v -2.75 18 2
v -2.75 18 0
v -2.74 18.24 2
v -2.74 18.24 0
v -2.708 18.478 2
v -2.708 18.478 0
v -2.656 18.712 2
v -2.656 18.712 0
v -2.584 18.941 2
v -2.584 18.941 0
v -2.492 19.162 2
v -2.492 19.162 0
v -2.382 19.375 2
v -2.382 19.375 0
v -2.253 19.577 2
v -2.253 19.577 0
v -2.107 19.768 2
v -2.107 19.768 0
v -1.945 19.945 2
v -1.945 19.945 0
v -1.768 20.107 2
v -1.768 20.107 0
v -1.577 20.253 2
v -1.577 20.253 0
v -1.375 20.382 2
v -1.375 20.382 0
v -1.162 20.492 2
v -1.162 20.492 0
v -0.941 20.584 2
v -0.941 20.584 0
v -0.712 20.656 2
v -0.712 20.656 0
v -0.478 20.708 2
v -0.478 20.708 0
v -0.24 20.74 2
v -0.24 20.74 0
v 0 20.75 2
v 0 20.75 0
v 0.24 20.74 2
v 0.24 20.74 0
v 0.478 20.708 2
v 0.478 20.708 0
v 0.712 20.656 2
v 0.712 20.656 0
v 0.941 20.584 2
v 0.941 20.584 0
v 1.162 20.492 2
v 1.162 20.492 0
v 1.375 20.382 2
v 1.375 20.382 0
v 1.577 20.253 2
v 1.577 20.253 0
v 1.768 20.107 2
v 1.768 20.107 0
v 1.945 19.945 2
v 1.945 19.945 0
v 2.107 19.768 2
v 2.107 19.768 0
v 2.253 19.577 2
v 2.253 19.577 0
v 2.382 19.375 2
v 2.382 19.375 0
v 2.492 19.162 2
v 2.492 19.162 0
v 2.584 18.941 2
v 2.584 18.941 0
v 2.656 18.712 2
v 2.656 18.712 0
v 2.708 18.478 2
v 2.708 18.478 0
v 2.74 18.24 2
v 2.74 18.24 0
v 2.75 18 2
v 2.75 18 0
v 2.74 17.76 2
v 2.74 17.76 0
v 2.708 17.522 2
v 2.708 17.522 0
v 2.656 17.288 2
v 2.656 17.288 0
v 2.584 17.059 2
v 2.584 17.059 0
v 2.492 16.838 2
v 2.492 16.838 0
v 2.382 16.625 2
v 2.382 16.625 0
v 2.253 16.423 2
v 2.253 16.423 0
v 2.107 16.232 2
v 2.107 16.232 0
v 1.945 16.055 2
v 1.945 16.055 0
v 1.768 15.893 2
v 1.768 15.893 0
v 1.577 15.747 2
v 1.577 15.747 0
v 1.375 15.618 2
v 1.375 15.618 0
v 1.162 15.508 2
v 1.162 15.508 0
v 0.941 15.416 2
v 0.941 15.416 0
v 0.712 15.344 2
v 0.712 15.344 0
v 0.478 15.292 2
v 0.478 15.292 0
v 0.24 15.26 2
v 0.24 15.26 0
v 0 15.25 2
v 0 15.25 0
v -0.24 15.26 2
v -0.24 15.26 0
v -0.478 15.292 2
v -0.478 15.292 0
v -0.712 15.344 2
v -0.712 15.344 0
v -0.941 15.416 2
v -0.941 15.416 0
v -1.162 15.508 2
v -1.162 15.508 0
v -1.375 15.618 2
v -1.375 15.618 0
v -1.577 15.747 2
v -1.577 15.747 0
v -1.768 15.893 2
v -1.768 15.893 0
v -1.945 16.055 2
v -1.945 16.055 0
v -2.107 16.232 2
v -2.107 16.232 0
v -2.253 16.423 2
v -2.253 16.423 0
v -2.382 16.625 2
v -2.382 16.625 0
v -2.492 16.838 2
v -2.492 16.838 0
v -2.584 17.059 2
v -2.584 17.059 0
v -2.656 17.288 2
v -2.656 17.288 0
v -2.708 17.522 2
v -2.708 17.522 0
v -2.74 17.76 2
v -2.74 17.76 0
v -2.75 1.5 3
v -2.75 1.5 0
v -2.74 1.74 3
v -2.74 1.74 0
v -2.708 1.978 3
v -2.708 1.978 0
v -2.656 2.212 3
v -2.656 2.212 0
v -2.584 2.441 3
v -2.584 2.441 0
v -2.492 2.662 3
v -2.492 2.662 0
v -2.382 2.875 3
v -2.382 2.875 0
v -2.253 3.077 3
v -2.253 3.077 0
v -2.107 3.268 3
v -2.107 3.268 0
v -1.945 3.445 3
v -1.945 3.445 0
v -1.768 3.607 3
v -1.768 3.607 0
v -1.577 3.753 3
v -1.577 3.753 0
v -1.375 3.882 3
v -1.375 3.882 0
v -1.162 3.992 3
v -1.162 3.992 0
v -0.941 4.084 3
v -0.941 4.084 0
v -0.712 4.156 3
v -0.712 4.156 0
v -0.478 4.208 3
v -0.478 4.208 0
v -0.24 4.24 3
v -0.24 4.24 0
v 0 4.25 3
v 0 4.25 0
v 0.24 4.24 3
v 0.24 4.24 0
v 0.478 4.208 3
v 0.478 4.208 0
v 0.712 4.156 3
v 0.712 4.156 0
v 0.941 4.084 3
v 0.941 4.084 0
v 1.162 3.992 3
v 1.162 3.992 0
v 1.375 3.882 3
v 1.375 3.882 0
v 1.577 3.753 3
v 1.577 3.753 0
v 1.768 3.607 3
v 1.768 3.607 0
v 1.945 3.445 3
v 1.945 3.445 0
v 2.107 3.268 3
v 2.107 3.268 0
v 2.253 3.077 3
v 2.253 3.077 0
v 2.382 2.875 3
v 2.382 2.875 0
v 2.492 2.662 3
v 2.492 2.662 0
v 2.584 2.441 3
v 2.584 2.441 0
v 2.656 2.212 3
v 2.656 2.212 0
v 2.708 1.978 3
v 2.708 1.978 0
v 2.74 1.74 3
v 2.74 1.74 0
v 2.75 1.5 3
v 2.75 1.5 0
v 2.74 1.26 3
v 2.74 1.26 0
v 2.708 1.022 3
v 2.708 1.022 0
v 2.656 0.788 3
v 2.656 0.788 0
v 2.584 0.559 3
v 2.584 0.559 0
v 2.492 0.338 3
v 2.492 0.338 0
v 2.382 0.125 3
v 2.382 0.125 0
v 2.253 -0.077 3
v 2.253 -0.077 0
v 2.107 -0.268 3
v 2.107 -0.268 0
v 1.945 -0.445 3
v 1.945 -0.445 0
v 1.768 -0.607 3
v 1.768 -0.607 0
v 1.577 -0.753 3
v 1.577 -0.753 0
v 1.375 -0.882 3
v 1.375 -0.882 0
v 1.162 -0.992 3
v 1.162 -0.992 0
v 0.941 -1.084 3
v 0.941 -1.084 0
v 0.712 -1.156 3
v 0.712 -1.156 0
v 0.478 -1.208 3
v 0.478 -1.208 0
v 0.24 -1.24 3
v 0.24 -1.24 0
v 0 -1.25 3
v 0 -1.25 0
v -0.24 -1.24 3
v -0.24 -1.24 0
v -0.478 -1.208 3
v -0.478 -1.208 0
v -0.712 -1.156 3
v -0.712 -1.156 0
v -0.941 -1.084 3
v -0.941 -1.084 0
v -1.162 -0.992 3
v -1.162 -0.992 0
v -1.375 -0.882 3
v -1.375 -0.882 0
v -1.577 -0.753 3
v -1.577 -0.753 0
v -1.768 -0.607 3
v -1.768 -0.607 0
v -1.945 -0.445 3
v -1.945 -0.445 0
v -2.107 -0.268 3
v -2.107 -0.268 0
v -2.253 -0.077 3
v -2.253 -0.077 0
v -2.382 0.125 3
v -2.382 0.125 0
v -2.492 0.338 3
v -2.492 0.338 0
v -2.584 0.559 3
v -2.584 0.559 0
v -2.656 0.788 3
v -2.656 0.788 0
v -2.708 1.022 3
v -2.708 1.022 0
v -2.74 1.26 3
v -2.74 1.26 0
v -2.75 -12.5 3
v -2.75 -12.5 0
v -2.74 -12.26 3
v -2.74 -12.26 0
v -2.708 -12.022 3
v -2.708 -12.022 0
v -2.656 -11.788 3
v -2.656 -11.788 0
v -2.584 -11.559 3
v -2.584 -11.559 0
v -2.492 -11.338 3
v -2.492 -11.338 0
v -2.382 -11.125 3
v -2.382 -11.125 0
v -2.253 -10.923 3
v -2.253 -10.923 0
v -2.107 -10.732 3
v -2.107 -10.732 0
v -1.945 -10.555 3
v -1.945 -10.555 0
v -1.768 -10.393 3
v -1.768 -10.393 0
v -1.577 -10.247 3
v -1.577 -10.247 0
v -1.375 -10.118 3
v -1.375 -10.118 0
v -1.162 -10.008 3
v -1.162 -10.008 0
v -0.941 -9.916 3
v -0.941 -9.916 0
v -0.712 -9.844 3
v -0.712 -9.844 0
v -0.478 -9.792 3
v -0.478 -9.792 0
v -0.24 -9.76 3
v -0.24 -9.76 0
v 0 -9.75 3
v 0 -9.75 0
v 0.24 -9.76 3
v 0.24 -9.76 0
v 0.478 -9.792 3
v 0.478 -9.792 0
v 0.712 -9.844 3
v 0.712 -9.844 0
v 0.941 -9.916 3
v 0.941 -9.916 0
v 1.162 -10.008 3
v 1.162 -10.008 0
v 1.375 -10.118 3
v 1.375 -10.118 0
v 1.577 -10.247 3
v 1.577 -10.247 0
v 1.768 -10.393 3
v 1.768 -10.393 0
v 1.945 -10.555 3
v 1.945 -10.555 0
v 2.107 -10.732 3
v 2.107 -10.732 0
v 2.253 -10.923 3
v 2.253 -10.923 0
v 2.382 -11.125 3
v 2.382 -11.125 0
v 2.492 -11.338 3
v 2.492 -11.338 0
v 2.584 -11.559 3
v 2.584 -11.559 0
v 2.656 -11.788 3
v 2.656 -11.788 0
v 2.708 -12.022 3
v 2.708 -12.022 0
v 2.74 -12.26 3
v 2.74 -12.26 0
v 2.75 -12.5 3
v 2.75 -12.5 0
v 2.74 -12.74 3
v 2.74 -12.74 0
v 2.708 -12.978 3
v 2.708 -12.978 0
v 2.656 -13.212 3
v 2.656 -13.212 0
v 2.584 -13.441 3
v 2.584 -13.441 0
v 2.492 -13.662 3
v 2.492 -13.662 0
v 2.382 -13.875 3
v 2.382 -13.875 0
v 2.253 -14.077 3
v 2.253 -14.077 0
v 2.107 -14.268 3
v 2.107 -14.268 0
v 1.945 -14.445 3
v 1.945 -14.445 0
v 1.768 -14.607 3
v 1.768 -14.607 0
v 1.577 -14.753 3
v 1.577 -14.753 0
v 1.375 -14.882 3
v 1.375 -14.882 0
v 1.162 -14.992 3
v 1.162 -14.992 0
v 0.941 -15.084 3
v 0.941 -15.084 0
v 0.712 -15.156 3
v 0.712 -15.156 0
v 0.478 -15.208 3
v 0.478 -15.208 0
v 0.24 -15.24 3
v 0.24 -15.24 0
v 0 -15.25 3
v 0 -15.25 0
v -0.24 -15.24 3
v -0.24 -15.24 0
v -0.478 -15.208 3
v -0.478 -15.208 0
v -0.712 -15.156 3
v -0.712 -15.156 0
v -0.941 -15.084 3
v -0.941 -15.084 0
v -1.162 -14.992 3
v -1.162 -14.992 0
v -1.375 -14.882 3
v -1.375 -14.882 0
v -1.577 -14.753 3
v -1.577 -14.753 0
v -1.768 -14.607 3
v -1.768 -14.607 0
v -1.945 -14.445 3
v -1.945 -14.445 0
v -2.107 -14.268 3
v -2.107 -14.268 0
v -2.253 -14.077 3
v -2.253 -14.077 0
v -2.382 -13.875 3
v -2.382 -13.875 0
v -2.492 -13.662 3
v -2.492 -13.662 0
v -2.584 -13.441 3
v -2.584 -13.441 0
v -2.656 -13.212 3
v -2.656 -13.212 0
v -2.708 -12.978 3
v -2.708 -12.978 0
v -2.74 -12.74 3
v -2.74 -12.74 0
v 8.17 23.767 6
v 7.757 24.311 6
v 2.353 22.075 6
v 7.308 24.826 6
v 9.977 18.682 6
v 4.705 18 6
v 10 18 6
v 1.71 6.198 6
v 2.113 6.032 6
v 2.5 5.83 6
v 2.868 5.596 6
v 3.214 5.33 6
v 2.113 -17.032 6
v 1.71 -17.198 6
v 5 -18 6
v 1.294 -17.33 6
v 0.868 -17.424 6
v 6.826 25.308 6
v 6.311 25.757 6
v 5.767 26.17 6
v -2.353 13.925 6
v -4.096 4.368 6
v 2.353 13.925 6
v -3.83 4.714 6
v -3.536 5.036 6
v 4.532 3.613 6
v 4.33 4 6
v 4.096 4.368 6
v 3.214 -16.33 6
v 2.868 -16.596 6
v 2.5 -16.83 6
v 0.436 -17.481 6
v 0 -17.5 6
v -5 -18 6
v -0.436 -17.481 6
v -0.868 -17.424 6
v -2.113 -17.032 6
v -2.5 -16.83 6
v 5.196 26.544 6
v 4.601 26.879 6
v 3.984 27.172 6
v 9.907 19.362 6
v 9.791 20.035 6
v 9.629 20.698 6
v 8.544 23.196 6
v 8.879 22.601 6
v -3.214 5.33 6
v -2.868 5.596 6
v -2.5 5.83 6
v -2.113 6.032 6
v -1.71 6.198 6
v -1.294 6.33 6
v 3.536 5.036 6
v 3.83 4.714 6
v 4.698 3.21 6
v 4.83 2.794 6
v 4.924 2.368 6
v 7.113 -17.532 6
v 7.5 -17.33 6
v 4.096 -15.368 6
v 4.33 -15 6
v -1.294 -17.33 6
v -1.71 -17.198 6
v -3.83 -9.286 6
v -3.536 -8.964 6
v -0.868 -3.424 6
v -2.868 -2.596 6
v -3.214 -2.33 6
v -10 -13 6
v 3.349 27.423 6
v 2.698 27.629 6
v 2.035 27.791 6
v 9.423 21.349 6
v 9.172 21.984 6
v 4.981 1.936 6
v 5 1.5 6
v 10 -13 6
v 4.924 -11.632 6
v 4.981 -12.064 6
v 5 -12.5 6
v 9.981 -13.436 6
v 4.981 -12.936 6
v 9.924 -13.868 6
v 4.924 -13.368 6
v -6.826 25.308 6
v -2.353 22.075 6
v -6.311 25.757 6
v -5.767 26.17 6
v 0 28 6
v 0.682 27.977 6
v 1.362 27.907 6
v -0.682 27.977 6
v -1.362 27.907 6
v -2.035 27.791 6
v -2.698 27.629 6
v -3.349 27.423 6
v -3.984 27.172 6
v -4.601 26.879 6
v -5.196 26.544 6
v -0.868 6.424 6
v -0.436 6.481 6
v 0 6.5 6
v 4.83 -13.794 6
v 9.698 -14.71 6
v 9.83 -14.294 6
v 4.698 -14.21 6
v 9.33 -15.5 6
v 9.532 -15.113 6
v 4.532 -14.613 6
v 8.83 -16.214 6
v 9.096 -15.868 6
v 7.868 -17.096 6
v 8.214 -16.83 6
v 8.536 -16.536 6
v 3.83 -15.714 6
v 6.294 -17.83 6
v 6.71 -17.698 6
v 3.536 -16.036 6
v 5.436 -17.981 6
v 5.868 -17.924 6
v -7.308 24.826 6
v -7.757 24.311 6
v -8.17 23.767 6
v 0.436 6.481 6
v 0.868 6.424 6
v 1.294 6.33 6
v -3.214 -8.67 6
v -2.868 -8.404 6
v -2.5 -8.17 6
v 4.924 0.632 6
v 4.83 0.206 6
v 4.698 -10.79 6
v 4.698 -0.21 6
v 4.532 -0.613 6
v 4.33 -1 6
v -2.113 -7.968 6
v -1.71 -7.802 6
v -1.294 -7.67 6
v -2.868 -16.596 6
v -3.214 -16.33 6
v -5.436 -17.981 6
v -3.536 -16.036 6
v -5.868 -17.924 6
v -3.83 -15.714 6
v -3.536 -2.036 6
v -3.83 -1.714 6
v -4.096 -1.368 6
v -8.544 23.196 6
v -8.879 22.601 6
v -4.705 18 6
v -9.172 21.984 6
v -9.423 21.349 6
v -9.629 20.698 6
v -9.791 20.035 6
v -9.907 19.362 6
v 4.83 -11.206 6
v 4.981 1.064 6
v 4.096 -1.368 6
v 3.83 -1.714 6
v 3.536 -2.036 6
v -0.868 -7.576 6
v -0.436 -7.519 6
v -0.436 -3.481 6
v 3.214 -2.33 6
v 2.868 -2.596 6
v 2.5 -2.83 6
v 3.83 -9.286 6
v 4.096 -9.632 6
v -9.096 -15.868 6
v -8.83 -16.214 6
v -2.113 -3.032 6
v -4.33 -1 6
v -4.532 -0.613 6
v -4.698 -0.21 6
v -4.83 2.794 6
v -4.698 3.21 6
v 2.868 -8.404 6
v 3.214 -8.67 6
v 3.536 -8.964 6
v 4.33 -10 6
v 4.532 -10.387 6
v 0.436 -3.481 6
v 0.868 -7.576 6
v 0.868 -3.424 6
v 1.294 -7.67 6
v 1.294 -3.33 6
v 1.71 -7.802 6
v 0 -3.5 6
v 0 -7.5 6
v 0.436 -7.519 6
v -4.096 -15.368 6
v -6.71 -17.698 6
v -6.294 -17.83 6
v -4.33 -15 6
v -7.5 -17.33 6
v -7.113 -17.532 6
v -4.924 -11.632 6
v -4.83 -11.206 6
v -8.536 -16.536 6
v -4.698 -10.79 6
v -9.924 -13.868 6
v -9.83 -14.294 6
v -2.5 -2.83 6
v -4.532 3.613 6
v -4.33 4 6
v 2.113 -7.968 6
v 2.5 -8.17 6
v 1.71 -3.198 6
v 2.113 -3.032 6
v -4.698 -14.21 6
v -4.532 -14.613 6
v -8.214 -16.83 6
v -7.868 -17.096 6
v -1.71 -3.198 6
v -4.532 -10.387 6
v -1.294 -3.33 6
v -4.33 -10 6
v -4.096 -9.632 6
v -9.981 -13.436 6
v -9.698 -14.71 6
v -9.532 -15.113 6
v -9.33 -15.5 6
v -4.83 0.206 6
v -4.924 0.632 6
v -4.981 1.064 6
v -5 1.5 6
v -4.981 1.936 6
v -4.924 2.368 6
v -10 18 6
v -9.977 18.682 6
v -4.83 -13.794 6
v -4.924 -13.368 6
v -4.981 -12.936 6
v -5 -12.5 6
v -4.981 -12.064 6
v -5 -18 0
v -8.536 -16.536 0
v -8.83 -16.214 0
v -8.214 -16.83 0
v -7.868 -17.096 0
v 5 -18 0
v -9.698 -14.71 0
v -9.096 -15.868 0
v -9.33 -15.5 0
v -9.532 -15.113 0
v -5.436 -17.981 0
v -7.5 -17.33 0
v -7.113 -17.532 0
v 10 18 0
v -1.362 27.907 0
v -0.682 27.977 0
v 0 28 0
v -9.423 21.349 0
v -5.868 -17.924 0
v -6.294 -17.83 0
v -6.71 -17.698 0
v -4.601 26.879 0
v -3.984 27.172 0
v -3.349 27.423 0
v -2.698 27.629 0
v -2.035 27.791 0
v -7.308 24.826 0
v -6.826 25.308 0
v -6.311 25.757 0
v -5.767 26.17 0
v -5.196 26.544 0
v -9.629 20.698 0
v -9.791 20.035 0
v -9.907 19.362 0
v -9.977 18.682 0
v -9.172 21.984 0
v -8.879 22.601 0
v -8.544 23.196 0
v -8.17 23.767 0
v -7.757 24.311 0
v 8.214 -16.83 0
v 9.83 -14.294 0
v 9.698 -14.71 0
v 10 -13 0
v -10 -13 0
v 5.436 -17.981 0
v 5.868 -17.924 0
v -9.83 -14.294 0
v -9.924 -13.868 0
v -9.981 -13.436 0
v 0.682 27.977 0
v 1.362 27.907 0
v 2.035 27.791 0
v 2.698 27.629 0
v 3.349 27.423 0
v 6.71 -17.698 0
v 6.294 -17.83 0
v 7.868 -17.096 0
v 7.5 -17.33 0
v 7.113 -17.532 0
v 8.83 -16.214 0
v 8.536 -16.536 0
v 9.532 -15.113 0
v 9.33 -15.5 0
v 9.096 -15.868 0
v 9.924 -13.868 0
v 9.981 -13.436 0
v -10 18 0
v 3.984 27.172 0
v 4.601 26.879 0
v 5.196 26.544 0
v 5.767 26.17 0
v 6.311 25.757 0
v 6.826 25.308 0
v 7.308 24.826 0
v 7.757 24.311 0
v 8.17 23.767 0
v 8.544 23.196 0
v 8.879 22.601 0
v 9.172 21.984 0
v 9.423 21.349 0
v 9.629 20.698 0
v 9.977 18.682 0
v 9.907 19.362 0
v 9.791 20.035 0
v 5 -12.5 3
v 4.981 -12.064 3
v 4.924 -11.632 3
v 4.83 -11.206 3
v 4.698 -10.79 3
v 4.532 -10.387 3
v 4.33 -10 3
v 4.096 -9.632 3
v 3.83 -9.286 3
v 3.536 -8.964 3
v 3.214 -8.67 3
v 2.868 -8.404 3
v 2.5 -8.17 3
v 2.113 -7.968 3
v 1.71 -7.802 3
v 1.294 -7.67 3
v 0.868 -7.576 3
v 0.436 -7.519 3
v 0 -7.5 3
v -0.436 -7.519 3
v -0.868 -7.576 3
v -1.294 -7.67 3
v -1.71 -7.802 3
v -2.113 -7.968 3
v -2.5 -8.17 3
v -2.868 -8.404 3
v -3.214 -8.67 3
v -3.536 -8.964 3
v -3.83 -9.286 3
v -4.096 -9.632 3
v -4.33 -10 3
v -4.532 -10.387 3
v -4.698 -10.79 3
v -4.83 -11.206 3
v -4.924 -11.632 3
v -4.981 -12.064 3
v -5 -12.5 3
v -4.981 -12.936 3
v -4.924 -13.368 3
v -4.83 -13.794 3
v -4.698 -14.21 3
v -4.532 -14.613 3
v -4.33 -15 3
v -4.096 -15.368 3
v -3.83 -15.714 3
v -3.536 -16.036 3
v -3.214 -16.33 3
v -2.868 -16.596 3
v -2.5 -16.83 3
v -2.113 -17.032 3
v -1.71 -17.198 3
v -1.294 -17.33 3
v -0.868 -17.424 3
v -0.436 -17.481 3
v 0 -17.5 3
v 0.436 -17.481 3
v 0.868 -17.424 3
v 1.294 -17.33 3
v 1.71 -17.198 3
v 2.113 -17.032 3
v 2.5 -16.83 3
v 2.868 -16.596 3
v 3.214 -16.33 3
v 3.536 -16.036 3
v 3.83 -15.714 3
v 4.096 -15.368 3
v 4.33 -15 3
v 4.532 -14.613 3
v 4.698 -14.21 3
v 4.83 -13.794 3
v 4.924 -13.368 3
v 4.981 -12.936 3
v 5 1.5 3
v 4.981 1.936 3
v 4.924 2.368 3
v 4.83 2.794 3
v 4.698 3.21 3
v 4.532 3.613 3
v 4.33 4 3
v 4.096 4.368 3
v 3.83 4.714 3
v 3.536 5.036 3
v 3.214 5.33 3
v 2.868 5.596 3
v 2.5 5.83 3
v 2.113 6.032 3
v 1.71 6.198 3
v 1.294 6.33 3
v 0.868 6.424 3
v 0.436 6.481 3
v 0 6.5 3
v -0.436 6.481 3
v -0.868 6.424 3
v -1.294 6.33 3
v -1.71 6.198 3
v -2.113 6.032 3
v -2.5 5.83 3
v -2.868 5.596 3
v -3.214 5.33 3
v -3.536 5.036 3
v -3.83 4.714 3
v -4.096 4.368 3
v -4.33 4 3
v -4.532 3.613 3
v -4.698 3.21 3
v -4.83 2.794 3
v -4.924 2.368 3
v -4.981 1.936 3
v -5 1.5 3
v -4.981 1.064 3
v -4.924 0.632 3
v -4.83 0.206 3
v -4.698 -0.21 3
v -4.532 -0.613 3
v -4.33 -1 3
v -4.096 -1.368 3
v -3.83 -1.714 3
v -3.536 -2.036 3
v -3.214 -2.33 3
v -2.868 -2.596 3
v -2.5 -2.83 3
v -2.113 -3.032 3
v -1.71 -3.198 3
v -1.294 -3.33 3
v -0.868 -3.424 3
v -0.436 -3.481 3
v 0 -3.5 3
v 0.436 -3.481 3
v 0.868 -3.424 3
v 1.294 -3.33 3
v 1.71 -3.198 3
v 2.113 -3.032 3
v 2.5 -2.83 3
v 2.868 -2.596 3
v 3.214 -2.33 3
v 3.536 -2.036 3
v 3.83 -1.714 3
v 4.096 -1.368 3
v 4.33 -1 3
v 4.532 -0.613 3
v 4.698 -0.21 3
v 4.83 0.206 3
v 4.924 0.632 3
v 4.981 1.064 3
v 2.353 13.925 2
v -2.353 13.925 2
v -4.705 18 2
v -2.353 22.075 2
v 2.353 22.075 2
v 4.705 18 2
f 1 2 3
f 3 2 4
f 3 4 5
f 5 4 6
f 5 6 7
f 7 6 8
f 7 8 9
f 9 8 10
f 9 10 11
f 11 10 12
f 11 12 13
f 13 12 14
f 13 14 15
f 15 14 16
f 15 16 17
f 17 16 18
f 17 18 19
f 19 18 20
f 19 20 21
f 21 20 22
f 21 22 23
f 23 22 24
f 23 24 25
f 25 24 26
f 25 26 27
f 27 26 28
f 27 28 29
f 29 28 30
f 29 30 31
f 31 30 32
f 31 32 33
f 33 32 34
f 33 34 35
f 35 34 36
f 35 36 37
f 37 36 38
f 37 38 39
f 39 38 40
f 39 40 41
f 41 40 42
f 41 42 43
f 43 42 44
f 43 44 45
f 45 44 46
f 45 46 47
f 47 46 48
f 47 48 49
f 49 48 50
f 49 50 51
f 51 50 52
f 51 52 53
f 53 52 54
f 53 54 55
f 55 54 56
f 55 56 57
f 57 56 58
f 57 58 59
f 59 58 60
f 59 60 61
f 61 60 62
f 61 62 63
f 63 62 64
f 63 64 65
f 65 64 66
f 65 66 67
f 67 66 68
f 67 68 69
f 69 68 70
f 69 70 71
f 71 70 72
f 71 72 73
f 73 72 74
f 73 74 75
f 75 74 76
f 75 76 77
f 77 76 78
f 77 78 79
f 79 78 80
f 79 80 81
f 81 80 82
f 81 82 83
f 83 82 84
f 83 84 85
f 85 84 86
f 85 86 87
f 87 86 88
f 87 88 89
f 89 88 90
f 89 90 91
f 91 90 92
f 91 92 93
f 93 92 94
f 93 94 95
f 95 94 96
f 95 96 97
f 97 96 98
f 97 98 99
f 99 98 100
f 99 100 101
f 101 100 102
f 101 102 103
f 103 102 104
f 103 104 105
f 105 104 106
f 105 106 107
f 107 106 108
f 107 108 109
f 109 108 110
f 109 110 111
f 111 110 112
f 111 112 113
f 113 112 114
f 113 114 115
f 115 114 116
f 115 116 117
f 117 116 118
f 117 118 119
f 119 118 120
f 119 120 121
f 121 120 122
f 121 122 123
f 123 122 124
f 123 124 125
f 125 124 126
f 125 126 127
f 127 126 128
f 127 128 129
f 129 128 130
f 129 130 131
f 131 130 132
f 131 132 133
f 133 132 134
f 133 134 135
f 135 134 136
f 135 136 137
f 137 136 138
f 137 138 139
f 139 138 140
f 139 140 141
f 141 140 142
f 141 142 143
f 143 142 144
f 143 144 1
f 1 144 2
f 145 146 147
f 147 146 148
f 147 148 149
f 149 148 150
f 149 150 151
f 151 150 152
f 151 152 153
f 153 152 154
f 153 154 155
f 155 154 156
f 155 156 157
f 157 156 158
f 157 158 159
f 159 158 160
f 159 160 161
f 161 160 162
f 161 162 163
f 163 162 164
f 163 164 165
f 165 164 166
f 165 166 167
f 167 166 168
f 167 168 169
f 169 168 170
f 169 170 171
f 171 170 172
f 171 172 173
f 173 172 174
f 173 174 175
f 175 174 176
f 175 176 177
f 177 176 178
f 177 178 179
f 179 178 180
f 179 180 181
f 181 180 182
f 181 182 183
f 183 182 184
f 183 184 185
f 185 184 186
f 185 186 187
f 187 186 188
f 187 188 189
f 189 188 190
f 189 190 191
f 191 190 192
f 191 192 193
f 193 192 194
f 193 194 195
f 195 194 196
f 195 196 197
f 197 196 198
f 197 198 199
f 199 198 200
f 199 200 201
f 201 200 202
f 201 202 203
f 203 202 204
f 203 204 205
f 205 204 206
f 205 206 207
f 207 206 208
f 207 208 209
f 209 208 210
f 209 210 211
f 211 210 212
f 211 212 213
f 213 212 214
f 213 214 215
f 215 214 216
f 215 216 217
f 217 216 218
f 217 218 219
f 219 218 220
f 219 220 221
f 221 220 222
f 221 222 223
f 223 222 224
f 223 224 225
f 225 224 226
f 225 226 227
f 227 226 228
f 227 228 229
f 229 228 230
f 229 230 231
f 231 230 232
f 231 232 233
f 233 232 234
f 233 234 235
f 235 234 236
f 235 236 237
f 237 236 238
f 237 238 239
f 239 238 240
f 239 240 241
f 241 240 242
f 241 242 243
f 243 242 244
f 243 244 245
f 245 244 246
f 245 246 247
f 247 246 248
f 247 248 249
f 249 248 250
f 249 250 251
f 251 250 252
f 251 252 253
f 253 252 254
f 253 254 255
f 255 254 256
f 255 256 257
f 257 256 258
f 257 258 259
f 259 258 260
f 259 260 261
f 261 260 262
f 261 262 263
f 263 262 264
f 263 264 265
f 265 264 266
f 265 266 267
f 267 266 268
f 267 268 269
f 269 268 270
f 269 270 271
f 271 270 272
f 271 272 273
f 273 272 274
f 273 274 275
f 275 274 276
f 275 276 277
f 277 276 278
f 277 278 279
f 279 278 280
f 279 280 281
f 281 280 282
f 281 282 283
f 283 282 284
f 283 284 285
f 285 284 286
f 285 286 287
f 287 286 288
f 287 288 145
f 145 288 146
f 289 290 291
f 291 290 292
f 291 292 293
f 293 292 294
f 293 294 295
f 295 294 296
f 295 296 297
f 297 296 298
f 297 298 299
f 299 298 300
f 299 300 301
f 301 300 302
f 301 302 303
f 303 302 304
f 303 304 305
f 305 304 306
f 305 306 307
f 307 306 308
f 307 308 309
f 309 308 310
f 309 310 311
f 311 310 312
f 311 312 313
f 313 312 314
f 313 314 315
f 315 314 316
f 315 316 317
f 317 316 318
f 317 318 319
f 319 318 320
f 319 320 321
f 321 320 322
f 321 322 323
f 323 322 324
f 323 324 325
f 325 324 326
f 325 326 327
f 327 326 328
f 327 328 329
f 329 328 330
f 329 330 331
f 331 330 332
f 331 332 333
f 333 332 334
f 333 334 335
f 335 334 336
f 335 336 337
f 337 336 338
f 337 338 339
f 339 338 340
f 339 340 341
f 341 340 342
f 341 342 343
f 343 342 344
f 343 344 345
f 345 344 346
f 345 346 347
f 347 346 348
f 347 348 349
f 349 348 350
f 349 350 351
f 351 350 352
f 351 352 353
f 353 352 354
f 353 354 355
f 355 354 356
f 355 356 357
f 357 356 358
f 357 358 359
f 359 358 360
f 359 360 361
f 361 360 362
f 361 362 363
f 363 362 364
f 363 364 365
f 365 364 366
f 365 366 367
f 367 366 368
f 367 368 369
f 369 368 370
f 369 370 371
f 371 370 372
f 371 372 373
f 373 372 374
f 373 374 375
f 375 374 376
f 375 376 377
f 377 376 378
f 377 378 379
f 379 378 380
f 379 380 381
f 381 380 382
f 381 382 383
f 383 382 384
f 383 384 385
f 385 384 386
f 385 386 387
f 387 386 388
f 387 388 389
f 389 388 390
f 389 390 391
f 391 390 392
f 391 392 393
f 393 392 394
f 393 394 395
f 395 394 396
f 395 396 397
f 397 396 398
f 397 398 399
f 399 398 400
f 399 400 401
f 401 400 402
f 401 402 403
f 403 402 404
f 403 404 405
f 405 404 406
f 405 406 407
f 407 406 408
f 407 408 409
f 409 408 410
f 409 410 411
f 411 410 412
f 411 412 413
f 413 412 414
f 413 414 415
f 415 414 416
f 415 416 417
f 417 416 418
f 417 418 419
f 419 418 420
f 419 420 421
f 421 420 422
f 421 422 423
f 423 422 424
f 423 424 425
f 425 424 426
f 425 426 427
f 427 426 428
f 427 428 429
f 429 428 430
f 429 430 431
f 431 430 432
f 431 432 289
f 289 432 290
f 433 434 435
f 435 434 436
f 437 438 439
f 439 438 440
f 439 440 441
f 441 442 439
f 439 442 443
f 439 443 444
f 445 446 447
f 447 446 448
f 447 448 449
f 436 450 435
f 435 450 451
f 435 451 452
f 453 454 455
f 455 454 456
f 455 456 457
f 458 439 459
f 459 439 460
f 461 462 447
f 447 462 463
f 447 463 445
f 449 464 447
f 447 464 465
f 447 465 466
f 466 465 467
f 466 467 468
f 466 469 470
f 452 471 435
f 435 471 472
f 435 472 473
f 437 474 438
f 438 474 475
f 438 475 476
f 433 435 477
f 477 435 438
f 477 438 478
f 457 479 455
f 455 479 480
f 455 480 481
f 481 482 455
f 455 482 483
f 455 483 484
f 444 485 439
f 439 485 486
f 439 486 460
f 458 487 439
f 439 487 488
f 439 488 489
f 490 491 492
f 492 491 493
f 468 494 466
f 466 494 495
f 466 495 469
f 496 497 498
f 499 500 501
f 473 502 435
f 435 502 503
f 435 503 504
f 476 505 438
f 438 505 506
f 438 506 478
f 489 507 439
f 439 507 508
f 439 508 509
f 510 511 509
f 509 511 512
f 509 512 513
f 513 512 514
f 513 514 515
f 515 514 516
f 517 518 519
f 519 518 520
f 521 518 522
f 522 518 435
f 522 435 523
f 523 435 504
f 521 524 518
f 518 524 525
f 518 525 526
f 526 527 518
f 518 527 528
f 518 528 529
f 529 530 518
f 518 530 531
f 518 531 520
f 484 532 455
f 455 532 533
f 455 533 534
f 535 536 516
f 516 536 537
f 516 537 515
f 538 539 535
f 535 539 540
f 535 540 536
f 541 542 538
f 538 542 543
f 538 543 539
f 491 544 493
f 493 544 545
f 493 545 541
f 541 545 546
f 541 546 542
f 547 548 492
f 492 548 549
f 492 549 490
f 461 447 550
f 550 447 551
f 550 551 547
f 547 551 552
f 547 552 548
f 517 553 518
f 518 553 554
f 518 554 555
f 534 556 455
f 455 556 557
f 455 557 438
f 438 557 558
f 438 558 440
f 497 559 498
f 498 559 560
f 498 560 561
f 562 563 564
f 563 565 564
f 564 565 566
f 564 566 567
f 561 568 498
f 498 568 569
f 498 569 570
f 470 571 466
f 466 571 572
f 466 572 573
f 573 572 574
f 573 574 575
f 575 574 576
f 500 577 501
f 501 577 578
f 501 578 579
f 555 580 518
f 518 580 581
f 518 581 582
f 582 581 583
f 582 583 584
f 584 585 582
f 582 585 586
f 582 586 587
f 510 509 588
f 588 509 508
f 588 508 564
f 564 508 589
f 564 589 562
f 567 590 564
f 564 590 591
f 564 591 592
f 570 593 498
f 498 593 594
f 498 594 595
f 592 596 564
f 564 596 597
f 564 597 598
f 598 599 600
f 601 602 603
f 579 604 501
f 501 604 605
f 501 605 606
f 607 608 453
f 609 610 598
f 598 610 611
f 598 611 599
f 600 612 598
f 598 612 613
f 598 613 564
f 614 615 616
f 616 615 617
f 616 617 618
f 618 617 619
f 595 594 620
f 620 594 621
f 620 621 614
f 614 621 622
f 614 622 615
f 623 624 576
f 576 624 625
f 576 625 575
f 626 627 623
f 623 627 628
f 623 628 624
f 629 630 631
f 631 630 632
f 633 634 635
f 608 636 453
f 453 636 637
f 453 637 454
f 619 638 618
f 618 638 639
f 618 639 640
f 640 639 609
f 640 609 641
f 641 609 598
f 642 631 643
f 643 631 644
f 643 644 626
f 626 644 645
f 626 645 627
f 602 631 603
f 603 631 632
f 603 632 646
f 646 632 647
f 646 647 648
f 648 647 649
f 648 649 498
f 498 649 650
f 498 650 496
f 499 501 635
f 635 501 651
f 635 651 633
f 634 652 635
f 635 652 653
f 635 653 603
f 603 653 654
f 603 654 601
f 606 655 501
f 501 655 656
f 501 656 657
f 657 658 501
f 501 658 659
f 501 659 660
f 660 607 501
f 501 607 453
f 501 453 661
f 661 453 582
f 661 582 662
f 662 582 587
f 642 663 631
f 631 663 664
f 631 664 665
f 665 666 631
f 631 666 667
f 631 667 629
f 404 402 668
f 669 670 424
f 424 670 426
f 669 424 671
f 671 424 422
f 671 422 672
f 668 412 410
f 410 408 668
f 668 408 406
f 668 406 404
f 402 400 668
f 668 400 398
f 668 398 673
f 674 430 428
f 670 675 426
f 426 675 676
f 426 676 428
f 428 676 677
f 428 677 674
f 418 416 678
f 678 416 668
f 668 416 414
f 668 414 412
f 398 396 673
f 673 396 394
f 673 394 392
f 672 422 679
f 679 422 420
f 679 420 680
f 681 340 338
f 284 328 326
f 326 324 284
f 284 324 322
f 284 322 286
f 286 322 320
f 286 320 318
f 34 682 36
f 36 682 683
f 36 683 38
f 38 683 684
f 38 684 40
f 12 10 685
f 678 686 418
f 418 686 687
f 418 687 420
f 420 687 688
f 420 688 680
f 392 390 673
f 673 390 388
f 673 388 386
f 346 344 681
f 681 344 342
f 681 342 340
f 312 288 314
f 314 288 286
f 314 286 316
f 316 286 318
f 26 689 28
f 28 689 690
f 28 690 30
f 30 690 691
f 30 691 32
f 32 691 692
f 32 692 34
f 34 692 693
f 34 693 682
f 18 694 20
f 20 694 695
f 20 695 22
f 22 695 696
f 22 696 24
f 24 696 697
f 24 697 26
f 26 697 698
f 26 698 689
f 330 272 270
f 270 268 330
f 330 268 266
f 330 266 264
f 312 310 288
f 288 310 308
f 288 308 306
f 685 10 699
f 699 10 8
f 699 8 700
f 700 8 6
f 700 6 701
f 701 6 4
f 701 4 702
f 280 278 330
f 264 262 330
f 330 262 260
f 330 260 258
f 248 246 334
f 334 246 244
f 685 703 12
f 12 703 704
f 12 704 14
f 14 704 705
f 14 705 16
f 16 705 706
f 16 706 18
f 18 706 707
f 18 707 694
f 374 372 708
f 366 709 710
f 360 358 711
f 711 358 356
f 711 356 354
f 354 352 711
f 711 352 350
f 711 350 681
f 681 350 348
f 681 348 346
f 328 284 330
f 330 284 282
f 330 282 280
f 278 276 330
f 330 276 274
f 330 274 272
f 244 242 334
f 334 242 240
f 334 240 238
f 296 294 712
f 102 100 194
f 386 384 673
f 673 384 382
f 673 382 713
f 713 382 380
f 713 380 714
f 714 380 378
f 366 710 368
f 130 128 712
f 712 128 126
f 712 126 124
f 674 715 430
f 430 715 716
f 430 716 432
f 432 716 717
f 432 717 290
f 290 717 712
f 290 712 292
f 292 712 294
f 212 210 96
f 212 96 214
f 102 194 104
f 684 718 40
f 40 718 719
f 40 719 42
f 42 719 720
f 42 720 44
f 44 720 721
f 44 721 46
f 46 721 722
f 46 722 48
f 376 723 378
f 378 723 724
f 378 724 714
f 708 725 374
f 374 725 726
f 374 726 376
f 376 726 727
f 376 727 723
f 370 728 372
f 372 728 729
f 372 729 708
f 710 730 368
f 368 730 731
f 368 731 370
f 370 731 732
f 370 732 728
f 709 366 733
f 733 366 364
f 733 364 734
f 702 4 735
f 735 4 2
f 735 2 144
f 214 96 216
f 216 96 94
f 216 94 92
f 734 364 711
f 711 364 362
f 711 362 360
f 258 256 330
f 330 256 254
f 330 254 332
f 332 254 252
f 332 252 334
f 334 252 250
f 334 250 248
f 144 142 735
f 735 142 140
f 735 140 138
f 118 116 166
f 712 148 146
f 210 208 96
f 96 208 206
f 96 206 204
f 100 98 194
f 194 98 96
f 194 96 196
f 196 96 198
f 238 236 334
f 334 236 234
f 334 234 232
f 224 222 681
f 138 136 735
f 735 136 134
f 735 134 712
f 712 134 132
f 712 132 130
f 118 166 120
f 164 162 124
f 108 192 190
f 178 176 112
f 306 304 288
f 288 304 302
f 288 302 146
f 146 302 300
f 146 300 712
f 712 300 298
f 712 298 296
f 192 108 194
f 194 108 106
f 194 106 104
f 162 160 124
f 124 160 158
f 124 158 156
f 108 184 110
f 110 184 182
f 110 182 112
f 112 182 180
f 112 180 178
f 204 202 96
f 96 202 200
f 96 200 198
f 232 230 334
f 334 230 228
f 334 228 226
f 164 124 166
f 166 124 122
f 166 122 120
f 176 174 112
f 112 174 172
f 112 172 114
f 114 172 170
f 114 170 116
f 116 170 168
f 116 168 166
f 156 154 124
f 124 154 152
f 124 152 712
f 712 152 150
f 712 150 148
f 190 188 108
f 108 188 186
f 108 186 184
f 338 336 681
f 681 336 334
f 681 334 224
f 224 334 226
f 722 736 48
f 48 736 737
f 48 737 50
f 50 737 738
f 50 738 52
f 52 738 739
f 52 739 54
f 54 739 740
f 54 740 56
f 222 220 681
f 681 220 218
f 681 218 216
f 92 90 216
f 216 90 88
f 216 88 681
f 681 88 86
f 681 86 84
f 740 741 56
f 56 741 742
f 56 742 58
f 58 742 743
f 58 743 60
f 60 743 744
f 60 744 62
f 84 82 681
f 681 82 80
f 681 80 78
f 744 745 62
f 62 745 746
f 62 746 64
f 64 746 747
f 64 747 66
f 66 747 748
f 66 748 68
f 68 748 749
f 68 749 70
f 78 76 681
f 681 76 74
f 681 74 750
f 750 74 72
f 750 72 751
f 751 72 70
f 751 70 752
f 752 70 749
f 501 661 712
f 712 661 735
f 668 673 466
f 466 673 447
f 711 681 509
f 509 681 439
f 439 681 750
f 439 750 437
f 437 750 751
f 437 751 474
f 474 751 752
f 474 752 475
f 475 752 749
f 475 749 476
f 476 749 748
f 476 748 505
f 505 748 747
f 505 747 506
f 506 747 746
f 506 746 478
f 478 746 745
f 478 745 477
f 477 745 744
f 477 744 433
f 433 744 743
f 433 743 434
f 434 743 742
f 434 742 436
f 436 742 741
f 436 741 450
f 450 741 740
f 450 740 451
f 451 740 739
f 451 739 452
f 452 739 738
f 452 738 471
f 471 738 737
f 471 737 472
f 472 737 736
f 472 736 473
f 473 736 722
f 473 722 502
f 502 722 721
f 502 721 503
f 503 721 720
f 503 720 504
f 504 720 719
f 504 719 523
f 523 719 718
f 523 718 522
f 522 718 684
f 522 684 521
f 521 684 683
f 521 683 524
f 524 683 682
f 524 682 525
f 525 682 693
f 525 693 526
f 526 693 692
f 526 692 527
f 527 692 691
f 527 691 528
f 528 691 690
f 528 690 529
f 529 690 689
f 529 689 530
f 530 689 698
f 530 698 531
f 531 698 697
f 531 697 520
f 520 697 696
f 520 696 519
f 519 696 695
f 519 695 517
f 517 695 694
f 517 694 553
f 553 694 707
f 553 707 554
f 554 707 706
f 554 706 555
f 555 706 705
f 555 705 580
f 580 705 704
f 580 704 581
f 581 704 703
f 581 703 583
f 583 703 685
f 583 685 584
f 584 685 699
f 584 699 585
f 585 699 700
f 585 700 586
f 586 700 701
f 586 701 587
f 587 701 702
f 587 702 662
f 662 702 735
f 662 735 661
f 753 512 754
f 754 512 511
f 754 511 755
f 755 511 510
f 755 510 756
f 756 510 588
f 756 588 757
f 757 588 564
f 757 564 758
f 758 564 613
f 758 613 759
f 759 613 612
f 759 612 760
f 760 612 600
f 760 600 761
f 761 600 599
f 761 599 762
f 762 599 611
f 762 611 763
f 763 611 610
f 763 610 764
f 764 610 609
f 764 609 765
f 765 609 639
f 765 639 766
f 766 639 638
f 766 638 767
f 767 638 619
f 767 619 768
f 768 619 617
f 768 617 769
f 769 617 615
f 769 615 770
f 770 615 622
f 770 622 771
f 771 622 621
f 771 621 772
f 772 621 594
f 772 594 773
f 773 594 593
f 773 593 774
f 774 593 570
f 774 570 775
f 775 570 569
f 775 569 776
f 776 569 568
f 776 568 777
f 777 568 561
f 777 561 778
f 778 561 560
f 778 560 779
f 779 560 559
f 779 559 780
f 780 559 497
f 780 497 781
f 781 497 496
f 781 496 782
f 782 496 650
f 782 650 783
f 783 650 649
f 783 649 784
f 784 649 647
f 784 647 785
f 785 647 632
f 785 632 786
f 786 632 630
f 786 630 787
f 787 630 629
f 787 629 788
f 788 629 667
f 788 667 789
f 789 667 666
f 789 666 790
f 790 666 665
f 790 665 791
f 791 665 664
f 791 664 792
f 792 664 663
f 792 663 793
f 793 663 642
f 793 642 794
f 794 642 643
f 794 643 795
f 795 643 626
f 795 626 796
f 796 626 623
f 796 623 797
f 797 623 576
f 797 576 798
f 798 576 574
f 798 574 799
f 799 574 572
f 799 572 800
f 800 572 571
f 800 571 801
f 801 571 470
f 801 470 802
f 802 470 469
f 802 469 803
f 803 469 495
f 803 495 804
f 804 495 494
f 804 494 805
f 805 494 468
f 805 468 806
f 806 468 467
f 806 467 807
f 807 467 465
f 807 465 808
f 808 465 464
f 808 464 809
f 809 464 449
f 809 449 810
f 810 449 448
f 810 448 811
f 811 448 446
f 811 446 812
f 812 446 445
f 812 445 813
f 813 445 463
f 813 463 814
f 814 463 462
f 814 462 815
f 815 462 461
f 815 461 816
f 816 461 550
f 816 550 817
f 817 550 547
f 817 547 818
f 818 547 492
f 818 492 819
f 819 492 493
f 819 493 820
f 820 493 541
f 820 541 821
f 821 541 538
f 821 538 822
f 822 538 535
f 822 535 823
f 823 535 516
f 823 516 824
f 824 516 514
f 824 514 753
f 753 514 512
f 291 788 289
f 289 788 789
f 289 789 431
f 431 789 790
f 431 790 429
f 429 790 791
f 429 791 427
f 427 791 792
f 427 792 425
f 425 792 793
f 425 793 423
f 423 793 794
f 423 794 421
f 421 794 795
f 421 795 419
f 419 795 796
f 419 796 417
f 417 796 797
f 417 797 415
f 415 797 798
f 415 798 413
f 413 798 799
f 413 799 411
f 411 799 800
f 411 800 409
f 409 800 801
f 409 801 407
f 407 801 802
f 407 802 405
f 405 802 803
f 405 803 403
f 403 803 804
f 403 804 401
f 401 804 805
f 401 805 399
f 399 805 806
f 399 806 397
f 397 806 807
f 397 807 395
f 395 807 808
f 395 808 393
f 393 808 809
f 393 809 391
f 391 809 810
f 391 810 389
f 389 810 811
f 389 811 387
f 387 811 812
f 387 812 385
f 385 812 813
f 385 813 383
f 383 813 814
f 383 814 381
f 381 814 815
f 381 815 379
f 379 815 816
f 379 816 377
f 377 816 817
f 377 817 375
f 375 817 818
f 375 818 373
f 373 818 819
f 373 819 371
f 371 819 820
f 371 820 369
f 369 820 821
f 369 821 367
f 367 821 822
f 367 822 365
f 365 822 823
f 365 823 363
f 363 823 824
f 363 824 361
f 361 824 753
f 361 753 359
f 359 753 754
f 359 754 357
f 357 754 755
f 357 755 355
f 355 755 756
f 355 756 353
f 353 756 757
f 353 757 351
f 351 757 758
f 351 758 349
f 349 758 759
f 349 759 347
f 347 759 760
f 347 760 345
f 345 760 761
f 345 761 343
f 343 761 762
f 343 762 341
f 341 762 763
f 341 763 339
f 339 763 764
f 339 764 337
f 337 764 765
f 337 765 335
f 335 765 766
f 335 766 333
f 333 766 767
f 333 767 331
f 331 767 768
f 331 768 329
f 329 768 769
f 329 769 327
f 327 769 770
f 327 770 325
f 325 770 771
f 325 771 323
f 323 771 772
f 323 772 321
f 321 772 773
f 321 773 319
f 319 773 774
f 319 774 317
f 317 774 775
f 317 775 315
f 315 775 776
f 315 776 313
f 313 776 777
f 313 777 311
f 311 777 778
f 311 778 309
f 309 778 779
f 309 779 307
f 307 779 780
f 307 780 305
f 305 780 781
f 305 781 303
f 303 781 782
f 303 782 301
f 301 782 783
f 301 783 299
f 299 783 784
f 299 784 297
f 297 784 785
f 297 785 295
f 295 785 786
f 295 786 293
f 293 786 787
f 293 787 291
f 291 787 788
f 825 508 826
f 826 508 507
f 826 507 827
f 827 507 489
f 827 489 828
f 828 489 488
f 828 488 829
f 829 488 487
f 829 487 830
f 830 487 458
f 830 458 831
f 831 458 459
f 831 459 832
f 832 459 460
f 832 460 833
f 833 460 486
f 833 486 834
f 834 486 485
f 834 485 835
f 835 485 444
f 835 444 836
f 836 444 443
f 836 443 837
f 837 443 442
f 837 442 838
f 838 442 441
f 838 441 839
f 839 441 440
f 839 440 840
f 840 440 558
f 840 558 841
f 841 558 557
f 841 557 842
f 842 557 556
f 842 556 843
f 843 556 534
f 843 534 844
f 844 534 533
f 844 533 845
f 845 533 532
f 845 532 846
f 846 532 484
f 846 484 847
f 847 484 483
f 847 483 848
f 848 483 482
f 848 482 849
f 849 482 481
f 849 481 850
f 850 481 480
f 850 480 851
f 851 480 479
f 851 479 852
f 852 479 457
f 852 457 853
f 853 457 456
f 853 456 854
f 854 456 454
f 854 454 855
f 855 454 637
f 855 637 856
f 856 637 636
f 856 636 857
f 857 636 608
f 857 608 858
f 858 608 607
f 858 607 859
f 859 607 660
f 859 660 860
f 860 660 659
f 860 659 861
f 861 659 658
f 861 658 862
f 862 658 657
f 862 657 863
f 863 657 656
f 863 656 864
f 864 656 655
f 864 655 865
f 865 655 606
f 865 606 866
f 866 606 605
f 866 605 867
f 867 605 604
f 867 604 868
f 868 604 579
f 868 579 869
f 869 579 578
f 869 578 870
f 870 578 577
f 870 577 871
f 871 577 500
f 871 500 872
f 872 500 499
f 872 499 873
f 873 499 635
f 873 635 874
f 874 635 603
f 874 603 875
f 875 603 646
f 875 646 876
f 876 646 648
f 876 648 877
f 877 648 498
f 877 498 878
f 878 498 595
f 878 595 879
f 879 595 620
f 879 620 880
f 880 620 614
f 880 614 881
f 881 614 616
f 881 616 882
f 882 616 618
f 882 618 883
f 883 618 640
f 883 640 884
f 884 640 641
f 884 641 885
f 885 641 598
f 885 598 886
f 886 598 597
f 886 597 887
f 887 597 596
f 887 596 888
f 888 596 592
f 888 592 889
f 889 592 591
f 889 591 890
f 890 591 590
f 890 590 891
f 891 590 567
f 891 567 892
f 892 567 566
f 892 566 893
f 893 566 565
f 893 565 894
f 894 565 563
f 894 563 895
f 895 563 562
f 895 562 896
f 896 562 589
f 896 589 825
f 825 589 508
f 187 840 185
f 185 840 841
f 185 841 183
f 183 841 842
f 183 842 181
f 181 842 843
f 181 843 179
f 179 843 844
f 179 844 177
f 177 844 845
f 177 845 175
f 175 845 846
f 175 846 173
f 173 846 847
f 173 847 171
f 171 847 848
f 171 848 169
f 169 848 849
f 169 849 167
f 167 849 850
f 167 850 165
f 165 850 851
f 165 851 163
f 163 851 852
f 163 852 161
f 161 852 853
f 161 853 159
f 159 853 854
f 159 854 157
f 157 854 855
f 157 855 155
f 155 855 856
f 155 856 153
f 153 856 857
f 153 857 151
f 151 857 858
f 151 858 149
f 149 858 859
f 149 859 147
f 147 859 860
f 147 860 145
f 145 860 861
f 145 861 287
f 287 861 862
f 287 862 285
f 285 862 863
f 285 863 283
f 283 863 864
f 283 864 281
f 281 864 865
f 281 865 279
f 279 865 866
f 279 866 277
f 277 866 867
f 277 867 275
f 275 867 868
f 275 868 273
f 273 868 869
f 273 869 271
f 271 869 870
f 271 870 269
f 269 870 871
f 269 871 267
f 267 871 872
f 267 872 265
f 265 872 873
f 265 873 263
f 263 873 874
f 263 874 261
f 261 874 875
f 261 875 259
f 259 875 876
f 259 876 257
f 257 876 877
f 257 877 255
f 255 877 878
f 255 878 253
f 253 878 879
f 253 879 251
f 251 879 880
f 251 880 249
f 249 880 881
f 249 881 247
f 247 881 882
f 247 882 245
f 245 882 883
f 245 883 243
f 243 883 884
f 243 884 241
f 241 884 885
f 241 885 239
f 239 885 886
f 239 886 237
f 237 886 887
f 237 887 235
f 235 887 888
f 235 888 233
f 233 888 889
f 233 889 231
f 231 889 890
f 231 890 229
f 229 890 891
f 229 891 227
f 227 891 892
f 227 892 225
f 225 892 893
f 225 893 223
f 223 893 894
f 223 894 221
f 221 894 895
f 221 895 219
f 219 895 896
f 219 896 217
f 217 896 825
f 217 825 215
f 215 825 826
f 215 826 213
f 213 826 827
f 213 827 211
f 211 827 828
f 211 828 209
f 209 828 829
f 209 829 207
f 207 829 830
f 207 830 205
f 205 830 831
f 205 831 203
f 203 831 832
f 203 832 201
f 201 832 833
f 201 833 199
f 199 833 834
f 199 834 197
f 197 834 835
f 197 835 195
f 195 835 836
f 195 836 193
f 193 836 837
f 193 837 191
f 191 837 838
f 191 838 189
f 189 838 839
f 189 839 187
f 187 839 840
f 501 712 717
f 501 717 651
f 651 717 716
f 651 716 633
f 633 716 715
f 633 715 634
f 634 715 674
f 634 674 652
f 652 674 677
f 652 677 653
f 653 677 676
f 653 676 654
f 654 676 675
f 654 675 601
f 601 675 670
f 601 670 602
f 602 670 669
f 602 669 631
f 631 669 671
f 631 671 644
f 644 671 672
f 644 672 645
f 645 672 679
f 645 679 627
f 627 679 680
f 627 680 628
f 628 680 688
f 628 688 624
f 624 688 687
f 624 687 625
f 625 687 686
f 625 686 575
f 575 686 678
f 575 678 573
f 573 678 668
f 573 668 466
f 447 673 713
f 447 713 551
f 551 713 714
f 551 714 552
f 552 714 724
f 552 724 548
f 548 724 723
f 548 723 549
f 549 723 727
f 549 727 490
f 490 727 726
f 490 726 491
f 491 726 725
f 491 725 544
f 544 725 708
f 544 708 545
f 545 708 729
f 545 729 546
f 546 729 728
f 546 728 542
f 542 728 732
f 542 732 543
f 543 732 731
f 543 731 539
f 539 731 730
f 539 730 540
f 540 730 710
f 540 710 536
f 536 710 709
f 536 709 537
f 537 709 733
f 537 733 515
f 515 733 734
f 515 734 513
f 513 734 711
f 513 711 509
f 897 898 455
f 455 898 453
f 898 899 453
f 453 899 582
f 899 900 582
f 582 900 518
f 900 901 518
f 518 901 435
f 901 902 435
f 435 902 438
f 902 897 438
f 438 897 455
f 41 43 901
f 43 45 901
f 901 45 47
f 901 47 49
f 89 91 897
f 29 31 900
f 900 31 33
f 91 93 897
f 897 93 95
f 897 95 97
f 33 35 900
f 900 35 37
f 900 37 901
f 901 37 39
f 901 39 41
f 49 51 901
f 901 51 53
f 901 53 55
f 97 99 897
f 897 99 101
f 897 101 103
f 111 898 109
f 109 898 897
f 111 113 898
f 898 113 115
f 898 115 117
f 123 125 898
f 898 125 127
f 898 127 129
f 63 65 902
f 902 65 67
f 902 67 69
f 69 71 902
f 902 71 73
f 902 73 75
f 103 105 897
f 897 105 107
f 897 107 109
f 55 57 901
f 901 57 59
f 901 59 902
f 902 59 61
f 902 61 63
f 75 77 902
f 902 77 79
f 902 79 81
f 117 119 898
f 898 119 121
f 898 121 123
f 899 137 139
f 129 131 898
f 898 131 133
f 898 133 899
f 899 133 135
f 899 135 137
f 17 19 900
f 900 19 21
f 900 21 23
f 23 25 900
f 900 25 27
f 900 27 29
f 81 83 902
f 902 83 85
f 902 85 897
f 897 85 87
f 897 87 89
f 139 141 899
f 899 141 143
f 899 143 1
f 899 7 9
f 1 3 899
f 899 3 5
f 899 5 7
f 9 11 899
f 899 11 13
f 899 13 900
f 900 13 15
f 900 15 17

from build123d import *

# Parameters (mm, degrees)
SKETCH_2_R          = 2.75
EXTRUDE_1_DEPTH     = 6
SKETCH_3_R          = 5
CUT_EXTRUDE_1_DEPTH = 3
FILLET_1_R          = 5
CUT_EXTRUDE_2_DEPTH = 4


with BuildPart() as part:
    # Эскиз2 → Бобышка-Вытянуть1 (new body)
    with BuildSketch(Plane.XY):
        with BuildLine():
            Line((10, 18), (10, -18))
            Line((10, -18), (-10, -18))
            Line((-10, -18), (-10, 18))
            ThreePointArc((-10, 18), (0, 28), (10, 18))
        make_face()
        with Locations((0, 1.5)):
            Circle(SKETCH_2_R, mode=Mode.SUBTRACT)
        with Locations((0, -12.5)):
            Circle(SKETCH_2_R, mode=Mode.SUBTRACT)
        with Locations((0, 18)):
            Circle(SKETCH_2_R, mode=Mode.SUBTRACT)
    extrude(amount=EXTRUDE_1_DEPTH)

    # Эскиз3 → Вырез-Вытянуть1 (cut)
    with BuildSketch(Plane.XY.offset(6)):
        with Locations((0, 1.5)):
            Circle(SKETCH_3_R)
        with Locations((0, -12.5)):
            Circle(SKETCH_3_R)
    extrude(amount=-CUT_EXTRUDE_1_DEPTH, mode=Mode.SUBTRACT)

    # Скругление1
    fillet_1_edges = [part.edges().sort_by_distance(p)[0] for p in [
        (10, -18, 3),
        (-10, -18, 3),
    ]]
    fillet(fillet_1_edges, radius=FILLET_1_R)

    # Эскиз4 → Вырез-Вытянуть2 (cut)
    with BuildSketch(Plane.XY.offset(6)):
        Polygon((2.352702347, 13.925), (4.705404694, 18), (2.352702347, 22.075), (-2.352702347, 22.075), (-4.705404694, 18), (-2.352702347, 13.925), align=None)
    extrude(amount=-CUT_EXTRUDE_2_DEPTH, mode=Mode.SUBTRACT)


solid = part.part
